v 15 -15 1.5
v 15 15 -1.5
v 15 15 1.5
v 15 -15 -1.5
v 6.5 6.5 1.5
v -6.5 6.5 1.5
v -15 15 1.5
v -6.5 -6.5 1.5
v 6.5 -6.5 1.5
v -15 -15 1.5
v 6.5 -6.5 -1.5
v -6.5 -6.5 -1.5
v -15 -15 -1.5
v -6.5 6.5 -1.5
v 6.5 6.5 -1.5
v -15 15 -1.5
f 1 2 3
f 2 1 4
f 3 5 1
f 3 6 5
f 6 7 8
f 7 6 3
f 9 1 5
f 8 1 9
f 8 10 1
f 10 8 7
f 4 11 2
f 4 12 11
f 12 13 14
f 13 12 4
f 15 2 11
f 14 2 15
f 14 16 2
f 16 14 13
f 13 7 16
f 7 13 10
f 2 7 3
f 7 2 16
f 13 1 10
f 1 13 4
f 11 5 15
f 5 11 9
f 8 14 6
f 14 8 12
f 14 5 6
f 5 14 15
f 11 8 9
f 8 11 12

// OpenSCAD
// ====================================================================
// CALIBRE DE PRUEBA PARA PULSADOR CUADRADO (v1.1 Corregida)
// ====================================================================

// Medidas de la plancha exterior
ancho_plancha = 30;
largo_plancha = 30;
espesor_plancha = 3;

// Medidas nominales del pulsador
hueco_boton = 13; 

// AJUSTE DE TOLERANCIA (Modifica esto según el desajuste de tu impresora)
// Ejemplos: 0.0 (exacto), 0.1 (un pelín más grande), 0.2 (holgado)
tolerancia = 0.0; 

// CÁLCULOS: Siempre fuera de los bloques de geometría
medida_final = hueco_boton + (tolerancia * 2);

// ====================================================================
// OBJETO 3D
// ====================================================================
difference() {
    // 1. Cuerpo principal de la plancha (Cubo base)
    cube([ancho_plancha, largo_plancha, espesor_plancha], center = true);
    
    // 2. Agujero pasante con la tolerancia aplicada (Cubo de recorte)
    cube([medida_final, medida_final, espesor_plancha + 2], center = true);
}
